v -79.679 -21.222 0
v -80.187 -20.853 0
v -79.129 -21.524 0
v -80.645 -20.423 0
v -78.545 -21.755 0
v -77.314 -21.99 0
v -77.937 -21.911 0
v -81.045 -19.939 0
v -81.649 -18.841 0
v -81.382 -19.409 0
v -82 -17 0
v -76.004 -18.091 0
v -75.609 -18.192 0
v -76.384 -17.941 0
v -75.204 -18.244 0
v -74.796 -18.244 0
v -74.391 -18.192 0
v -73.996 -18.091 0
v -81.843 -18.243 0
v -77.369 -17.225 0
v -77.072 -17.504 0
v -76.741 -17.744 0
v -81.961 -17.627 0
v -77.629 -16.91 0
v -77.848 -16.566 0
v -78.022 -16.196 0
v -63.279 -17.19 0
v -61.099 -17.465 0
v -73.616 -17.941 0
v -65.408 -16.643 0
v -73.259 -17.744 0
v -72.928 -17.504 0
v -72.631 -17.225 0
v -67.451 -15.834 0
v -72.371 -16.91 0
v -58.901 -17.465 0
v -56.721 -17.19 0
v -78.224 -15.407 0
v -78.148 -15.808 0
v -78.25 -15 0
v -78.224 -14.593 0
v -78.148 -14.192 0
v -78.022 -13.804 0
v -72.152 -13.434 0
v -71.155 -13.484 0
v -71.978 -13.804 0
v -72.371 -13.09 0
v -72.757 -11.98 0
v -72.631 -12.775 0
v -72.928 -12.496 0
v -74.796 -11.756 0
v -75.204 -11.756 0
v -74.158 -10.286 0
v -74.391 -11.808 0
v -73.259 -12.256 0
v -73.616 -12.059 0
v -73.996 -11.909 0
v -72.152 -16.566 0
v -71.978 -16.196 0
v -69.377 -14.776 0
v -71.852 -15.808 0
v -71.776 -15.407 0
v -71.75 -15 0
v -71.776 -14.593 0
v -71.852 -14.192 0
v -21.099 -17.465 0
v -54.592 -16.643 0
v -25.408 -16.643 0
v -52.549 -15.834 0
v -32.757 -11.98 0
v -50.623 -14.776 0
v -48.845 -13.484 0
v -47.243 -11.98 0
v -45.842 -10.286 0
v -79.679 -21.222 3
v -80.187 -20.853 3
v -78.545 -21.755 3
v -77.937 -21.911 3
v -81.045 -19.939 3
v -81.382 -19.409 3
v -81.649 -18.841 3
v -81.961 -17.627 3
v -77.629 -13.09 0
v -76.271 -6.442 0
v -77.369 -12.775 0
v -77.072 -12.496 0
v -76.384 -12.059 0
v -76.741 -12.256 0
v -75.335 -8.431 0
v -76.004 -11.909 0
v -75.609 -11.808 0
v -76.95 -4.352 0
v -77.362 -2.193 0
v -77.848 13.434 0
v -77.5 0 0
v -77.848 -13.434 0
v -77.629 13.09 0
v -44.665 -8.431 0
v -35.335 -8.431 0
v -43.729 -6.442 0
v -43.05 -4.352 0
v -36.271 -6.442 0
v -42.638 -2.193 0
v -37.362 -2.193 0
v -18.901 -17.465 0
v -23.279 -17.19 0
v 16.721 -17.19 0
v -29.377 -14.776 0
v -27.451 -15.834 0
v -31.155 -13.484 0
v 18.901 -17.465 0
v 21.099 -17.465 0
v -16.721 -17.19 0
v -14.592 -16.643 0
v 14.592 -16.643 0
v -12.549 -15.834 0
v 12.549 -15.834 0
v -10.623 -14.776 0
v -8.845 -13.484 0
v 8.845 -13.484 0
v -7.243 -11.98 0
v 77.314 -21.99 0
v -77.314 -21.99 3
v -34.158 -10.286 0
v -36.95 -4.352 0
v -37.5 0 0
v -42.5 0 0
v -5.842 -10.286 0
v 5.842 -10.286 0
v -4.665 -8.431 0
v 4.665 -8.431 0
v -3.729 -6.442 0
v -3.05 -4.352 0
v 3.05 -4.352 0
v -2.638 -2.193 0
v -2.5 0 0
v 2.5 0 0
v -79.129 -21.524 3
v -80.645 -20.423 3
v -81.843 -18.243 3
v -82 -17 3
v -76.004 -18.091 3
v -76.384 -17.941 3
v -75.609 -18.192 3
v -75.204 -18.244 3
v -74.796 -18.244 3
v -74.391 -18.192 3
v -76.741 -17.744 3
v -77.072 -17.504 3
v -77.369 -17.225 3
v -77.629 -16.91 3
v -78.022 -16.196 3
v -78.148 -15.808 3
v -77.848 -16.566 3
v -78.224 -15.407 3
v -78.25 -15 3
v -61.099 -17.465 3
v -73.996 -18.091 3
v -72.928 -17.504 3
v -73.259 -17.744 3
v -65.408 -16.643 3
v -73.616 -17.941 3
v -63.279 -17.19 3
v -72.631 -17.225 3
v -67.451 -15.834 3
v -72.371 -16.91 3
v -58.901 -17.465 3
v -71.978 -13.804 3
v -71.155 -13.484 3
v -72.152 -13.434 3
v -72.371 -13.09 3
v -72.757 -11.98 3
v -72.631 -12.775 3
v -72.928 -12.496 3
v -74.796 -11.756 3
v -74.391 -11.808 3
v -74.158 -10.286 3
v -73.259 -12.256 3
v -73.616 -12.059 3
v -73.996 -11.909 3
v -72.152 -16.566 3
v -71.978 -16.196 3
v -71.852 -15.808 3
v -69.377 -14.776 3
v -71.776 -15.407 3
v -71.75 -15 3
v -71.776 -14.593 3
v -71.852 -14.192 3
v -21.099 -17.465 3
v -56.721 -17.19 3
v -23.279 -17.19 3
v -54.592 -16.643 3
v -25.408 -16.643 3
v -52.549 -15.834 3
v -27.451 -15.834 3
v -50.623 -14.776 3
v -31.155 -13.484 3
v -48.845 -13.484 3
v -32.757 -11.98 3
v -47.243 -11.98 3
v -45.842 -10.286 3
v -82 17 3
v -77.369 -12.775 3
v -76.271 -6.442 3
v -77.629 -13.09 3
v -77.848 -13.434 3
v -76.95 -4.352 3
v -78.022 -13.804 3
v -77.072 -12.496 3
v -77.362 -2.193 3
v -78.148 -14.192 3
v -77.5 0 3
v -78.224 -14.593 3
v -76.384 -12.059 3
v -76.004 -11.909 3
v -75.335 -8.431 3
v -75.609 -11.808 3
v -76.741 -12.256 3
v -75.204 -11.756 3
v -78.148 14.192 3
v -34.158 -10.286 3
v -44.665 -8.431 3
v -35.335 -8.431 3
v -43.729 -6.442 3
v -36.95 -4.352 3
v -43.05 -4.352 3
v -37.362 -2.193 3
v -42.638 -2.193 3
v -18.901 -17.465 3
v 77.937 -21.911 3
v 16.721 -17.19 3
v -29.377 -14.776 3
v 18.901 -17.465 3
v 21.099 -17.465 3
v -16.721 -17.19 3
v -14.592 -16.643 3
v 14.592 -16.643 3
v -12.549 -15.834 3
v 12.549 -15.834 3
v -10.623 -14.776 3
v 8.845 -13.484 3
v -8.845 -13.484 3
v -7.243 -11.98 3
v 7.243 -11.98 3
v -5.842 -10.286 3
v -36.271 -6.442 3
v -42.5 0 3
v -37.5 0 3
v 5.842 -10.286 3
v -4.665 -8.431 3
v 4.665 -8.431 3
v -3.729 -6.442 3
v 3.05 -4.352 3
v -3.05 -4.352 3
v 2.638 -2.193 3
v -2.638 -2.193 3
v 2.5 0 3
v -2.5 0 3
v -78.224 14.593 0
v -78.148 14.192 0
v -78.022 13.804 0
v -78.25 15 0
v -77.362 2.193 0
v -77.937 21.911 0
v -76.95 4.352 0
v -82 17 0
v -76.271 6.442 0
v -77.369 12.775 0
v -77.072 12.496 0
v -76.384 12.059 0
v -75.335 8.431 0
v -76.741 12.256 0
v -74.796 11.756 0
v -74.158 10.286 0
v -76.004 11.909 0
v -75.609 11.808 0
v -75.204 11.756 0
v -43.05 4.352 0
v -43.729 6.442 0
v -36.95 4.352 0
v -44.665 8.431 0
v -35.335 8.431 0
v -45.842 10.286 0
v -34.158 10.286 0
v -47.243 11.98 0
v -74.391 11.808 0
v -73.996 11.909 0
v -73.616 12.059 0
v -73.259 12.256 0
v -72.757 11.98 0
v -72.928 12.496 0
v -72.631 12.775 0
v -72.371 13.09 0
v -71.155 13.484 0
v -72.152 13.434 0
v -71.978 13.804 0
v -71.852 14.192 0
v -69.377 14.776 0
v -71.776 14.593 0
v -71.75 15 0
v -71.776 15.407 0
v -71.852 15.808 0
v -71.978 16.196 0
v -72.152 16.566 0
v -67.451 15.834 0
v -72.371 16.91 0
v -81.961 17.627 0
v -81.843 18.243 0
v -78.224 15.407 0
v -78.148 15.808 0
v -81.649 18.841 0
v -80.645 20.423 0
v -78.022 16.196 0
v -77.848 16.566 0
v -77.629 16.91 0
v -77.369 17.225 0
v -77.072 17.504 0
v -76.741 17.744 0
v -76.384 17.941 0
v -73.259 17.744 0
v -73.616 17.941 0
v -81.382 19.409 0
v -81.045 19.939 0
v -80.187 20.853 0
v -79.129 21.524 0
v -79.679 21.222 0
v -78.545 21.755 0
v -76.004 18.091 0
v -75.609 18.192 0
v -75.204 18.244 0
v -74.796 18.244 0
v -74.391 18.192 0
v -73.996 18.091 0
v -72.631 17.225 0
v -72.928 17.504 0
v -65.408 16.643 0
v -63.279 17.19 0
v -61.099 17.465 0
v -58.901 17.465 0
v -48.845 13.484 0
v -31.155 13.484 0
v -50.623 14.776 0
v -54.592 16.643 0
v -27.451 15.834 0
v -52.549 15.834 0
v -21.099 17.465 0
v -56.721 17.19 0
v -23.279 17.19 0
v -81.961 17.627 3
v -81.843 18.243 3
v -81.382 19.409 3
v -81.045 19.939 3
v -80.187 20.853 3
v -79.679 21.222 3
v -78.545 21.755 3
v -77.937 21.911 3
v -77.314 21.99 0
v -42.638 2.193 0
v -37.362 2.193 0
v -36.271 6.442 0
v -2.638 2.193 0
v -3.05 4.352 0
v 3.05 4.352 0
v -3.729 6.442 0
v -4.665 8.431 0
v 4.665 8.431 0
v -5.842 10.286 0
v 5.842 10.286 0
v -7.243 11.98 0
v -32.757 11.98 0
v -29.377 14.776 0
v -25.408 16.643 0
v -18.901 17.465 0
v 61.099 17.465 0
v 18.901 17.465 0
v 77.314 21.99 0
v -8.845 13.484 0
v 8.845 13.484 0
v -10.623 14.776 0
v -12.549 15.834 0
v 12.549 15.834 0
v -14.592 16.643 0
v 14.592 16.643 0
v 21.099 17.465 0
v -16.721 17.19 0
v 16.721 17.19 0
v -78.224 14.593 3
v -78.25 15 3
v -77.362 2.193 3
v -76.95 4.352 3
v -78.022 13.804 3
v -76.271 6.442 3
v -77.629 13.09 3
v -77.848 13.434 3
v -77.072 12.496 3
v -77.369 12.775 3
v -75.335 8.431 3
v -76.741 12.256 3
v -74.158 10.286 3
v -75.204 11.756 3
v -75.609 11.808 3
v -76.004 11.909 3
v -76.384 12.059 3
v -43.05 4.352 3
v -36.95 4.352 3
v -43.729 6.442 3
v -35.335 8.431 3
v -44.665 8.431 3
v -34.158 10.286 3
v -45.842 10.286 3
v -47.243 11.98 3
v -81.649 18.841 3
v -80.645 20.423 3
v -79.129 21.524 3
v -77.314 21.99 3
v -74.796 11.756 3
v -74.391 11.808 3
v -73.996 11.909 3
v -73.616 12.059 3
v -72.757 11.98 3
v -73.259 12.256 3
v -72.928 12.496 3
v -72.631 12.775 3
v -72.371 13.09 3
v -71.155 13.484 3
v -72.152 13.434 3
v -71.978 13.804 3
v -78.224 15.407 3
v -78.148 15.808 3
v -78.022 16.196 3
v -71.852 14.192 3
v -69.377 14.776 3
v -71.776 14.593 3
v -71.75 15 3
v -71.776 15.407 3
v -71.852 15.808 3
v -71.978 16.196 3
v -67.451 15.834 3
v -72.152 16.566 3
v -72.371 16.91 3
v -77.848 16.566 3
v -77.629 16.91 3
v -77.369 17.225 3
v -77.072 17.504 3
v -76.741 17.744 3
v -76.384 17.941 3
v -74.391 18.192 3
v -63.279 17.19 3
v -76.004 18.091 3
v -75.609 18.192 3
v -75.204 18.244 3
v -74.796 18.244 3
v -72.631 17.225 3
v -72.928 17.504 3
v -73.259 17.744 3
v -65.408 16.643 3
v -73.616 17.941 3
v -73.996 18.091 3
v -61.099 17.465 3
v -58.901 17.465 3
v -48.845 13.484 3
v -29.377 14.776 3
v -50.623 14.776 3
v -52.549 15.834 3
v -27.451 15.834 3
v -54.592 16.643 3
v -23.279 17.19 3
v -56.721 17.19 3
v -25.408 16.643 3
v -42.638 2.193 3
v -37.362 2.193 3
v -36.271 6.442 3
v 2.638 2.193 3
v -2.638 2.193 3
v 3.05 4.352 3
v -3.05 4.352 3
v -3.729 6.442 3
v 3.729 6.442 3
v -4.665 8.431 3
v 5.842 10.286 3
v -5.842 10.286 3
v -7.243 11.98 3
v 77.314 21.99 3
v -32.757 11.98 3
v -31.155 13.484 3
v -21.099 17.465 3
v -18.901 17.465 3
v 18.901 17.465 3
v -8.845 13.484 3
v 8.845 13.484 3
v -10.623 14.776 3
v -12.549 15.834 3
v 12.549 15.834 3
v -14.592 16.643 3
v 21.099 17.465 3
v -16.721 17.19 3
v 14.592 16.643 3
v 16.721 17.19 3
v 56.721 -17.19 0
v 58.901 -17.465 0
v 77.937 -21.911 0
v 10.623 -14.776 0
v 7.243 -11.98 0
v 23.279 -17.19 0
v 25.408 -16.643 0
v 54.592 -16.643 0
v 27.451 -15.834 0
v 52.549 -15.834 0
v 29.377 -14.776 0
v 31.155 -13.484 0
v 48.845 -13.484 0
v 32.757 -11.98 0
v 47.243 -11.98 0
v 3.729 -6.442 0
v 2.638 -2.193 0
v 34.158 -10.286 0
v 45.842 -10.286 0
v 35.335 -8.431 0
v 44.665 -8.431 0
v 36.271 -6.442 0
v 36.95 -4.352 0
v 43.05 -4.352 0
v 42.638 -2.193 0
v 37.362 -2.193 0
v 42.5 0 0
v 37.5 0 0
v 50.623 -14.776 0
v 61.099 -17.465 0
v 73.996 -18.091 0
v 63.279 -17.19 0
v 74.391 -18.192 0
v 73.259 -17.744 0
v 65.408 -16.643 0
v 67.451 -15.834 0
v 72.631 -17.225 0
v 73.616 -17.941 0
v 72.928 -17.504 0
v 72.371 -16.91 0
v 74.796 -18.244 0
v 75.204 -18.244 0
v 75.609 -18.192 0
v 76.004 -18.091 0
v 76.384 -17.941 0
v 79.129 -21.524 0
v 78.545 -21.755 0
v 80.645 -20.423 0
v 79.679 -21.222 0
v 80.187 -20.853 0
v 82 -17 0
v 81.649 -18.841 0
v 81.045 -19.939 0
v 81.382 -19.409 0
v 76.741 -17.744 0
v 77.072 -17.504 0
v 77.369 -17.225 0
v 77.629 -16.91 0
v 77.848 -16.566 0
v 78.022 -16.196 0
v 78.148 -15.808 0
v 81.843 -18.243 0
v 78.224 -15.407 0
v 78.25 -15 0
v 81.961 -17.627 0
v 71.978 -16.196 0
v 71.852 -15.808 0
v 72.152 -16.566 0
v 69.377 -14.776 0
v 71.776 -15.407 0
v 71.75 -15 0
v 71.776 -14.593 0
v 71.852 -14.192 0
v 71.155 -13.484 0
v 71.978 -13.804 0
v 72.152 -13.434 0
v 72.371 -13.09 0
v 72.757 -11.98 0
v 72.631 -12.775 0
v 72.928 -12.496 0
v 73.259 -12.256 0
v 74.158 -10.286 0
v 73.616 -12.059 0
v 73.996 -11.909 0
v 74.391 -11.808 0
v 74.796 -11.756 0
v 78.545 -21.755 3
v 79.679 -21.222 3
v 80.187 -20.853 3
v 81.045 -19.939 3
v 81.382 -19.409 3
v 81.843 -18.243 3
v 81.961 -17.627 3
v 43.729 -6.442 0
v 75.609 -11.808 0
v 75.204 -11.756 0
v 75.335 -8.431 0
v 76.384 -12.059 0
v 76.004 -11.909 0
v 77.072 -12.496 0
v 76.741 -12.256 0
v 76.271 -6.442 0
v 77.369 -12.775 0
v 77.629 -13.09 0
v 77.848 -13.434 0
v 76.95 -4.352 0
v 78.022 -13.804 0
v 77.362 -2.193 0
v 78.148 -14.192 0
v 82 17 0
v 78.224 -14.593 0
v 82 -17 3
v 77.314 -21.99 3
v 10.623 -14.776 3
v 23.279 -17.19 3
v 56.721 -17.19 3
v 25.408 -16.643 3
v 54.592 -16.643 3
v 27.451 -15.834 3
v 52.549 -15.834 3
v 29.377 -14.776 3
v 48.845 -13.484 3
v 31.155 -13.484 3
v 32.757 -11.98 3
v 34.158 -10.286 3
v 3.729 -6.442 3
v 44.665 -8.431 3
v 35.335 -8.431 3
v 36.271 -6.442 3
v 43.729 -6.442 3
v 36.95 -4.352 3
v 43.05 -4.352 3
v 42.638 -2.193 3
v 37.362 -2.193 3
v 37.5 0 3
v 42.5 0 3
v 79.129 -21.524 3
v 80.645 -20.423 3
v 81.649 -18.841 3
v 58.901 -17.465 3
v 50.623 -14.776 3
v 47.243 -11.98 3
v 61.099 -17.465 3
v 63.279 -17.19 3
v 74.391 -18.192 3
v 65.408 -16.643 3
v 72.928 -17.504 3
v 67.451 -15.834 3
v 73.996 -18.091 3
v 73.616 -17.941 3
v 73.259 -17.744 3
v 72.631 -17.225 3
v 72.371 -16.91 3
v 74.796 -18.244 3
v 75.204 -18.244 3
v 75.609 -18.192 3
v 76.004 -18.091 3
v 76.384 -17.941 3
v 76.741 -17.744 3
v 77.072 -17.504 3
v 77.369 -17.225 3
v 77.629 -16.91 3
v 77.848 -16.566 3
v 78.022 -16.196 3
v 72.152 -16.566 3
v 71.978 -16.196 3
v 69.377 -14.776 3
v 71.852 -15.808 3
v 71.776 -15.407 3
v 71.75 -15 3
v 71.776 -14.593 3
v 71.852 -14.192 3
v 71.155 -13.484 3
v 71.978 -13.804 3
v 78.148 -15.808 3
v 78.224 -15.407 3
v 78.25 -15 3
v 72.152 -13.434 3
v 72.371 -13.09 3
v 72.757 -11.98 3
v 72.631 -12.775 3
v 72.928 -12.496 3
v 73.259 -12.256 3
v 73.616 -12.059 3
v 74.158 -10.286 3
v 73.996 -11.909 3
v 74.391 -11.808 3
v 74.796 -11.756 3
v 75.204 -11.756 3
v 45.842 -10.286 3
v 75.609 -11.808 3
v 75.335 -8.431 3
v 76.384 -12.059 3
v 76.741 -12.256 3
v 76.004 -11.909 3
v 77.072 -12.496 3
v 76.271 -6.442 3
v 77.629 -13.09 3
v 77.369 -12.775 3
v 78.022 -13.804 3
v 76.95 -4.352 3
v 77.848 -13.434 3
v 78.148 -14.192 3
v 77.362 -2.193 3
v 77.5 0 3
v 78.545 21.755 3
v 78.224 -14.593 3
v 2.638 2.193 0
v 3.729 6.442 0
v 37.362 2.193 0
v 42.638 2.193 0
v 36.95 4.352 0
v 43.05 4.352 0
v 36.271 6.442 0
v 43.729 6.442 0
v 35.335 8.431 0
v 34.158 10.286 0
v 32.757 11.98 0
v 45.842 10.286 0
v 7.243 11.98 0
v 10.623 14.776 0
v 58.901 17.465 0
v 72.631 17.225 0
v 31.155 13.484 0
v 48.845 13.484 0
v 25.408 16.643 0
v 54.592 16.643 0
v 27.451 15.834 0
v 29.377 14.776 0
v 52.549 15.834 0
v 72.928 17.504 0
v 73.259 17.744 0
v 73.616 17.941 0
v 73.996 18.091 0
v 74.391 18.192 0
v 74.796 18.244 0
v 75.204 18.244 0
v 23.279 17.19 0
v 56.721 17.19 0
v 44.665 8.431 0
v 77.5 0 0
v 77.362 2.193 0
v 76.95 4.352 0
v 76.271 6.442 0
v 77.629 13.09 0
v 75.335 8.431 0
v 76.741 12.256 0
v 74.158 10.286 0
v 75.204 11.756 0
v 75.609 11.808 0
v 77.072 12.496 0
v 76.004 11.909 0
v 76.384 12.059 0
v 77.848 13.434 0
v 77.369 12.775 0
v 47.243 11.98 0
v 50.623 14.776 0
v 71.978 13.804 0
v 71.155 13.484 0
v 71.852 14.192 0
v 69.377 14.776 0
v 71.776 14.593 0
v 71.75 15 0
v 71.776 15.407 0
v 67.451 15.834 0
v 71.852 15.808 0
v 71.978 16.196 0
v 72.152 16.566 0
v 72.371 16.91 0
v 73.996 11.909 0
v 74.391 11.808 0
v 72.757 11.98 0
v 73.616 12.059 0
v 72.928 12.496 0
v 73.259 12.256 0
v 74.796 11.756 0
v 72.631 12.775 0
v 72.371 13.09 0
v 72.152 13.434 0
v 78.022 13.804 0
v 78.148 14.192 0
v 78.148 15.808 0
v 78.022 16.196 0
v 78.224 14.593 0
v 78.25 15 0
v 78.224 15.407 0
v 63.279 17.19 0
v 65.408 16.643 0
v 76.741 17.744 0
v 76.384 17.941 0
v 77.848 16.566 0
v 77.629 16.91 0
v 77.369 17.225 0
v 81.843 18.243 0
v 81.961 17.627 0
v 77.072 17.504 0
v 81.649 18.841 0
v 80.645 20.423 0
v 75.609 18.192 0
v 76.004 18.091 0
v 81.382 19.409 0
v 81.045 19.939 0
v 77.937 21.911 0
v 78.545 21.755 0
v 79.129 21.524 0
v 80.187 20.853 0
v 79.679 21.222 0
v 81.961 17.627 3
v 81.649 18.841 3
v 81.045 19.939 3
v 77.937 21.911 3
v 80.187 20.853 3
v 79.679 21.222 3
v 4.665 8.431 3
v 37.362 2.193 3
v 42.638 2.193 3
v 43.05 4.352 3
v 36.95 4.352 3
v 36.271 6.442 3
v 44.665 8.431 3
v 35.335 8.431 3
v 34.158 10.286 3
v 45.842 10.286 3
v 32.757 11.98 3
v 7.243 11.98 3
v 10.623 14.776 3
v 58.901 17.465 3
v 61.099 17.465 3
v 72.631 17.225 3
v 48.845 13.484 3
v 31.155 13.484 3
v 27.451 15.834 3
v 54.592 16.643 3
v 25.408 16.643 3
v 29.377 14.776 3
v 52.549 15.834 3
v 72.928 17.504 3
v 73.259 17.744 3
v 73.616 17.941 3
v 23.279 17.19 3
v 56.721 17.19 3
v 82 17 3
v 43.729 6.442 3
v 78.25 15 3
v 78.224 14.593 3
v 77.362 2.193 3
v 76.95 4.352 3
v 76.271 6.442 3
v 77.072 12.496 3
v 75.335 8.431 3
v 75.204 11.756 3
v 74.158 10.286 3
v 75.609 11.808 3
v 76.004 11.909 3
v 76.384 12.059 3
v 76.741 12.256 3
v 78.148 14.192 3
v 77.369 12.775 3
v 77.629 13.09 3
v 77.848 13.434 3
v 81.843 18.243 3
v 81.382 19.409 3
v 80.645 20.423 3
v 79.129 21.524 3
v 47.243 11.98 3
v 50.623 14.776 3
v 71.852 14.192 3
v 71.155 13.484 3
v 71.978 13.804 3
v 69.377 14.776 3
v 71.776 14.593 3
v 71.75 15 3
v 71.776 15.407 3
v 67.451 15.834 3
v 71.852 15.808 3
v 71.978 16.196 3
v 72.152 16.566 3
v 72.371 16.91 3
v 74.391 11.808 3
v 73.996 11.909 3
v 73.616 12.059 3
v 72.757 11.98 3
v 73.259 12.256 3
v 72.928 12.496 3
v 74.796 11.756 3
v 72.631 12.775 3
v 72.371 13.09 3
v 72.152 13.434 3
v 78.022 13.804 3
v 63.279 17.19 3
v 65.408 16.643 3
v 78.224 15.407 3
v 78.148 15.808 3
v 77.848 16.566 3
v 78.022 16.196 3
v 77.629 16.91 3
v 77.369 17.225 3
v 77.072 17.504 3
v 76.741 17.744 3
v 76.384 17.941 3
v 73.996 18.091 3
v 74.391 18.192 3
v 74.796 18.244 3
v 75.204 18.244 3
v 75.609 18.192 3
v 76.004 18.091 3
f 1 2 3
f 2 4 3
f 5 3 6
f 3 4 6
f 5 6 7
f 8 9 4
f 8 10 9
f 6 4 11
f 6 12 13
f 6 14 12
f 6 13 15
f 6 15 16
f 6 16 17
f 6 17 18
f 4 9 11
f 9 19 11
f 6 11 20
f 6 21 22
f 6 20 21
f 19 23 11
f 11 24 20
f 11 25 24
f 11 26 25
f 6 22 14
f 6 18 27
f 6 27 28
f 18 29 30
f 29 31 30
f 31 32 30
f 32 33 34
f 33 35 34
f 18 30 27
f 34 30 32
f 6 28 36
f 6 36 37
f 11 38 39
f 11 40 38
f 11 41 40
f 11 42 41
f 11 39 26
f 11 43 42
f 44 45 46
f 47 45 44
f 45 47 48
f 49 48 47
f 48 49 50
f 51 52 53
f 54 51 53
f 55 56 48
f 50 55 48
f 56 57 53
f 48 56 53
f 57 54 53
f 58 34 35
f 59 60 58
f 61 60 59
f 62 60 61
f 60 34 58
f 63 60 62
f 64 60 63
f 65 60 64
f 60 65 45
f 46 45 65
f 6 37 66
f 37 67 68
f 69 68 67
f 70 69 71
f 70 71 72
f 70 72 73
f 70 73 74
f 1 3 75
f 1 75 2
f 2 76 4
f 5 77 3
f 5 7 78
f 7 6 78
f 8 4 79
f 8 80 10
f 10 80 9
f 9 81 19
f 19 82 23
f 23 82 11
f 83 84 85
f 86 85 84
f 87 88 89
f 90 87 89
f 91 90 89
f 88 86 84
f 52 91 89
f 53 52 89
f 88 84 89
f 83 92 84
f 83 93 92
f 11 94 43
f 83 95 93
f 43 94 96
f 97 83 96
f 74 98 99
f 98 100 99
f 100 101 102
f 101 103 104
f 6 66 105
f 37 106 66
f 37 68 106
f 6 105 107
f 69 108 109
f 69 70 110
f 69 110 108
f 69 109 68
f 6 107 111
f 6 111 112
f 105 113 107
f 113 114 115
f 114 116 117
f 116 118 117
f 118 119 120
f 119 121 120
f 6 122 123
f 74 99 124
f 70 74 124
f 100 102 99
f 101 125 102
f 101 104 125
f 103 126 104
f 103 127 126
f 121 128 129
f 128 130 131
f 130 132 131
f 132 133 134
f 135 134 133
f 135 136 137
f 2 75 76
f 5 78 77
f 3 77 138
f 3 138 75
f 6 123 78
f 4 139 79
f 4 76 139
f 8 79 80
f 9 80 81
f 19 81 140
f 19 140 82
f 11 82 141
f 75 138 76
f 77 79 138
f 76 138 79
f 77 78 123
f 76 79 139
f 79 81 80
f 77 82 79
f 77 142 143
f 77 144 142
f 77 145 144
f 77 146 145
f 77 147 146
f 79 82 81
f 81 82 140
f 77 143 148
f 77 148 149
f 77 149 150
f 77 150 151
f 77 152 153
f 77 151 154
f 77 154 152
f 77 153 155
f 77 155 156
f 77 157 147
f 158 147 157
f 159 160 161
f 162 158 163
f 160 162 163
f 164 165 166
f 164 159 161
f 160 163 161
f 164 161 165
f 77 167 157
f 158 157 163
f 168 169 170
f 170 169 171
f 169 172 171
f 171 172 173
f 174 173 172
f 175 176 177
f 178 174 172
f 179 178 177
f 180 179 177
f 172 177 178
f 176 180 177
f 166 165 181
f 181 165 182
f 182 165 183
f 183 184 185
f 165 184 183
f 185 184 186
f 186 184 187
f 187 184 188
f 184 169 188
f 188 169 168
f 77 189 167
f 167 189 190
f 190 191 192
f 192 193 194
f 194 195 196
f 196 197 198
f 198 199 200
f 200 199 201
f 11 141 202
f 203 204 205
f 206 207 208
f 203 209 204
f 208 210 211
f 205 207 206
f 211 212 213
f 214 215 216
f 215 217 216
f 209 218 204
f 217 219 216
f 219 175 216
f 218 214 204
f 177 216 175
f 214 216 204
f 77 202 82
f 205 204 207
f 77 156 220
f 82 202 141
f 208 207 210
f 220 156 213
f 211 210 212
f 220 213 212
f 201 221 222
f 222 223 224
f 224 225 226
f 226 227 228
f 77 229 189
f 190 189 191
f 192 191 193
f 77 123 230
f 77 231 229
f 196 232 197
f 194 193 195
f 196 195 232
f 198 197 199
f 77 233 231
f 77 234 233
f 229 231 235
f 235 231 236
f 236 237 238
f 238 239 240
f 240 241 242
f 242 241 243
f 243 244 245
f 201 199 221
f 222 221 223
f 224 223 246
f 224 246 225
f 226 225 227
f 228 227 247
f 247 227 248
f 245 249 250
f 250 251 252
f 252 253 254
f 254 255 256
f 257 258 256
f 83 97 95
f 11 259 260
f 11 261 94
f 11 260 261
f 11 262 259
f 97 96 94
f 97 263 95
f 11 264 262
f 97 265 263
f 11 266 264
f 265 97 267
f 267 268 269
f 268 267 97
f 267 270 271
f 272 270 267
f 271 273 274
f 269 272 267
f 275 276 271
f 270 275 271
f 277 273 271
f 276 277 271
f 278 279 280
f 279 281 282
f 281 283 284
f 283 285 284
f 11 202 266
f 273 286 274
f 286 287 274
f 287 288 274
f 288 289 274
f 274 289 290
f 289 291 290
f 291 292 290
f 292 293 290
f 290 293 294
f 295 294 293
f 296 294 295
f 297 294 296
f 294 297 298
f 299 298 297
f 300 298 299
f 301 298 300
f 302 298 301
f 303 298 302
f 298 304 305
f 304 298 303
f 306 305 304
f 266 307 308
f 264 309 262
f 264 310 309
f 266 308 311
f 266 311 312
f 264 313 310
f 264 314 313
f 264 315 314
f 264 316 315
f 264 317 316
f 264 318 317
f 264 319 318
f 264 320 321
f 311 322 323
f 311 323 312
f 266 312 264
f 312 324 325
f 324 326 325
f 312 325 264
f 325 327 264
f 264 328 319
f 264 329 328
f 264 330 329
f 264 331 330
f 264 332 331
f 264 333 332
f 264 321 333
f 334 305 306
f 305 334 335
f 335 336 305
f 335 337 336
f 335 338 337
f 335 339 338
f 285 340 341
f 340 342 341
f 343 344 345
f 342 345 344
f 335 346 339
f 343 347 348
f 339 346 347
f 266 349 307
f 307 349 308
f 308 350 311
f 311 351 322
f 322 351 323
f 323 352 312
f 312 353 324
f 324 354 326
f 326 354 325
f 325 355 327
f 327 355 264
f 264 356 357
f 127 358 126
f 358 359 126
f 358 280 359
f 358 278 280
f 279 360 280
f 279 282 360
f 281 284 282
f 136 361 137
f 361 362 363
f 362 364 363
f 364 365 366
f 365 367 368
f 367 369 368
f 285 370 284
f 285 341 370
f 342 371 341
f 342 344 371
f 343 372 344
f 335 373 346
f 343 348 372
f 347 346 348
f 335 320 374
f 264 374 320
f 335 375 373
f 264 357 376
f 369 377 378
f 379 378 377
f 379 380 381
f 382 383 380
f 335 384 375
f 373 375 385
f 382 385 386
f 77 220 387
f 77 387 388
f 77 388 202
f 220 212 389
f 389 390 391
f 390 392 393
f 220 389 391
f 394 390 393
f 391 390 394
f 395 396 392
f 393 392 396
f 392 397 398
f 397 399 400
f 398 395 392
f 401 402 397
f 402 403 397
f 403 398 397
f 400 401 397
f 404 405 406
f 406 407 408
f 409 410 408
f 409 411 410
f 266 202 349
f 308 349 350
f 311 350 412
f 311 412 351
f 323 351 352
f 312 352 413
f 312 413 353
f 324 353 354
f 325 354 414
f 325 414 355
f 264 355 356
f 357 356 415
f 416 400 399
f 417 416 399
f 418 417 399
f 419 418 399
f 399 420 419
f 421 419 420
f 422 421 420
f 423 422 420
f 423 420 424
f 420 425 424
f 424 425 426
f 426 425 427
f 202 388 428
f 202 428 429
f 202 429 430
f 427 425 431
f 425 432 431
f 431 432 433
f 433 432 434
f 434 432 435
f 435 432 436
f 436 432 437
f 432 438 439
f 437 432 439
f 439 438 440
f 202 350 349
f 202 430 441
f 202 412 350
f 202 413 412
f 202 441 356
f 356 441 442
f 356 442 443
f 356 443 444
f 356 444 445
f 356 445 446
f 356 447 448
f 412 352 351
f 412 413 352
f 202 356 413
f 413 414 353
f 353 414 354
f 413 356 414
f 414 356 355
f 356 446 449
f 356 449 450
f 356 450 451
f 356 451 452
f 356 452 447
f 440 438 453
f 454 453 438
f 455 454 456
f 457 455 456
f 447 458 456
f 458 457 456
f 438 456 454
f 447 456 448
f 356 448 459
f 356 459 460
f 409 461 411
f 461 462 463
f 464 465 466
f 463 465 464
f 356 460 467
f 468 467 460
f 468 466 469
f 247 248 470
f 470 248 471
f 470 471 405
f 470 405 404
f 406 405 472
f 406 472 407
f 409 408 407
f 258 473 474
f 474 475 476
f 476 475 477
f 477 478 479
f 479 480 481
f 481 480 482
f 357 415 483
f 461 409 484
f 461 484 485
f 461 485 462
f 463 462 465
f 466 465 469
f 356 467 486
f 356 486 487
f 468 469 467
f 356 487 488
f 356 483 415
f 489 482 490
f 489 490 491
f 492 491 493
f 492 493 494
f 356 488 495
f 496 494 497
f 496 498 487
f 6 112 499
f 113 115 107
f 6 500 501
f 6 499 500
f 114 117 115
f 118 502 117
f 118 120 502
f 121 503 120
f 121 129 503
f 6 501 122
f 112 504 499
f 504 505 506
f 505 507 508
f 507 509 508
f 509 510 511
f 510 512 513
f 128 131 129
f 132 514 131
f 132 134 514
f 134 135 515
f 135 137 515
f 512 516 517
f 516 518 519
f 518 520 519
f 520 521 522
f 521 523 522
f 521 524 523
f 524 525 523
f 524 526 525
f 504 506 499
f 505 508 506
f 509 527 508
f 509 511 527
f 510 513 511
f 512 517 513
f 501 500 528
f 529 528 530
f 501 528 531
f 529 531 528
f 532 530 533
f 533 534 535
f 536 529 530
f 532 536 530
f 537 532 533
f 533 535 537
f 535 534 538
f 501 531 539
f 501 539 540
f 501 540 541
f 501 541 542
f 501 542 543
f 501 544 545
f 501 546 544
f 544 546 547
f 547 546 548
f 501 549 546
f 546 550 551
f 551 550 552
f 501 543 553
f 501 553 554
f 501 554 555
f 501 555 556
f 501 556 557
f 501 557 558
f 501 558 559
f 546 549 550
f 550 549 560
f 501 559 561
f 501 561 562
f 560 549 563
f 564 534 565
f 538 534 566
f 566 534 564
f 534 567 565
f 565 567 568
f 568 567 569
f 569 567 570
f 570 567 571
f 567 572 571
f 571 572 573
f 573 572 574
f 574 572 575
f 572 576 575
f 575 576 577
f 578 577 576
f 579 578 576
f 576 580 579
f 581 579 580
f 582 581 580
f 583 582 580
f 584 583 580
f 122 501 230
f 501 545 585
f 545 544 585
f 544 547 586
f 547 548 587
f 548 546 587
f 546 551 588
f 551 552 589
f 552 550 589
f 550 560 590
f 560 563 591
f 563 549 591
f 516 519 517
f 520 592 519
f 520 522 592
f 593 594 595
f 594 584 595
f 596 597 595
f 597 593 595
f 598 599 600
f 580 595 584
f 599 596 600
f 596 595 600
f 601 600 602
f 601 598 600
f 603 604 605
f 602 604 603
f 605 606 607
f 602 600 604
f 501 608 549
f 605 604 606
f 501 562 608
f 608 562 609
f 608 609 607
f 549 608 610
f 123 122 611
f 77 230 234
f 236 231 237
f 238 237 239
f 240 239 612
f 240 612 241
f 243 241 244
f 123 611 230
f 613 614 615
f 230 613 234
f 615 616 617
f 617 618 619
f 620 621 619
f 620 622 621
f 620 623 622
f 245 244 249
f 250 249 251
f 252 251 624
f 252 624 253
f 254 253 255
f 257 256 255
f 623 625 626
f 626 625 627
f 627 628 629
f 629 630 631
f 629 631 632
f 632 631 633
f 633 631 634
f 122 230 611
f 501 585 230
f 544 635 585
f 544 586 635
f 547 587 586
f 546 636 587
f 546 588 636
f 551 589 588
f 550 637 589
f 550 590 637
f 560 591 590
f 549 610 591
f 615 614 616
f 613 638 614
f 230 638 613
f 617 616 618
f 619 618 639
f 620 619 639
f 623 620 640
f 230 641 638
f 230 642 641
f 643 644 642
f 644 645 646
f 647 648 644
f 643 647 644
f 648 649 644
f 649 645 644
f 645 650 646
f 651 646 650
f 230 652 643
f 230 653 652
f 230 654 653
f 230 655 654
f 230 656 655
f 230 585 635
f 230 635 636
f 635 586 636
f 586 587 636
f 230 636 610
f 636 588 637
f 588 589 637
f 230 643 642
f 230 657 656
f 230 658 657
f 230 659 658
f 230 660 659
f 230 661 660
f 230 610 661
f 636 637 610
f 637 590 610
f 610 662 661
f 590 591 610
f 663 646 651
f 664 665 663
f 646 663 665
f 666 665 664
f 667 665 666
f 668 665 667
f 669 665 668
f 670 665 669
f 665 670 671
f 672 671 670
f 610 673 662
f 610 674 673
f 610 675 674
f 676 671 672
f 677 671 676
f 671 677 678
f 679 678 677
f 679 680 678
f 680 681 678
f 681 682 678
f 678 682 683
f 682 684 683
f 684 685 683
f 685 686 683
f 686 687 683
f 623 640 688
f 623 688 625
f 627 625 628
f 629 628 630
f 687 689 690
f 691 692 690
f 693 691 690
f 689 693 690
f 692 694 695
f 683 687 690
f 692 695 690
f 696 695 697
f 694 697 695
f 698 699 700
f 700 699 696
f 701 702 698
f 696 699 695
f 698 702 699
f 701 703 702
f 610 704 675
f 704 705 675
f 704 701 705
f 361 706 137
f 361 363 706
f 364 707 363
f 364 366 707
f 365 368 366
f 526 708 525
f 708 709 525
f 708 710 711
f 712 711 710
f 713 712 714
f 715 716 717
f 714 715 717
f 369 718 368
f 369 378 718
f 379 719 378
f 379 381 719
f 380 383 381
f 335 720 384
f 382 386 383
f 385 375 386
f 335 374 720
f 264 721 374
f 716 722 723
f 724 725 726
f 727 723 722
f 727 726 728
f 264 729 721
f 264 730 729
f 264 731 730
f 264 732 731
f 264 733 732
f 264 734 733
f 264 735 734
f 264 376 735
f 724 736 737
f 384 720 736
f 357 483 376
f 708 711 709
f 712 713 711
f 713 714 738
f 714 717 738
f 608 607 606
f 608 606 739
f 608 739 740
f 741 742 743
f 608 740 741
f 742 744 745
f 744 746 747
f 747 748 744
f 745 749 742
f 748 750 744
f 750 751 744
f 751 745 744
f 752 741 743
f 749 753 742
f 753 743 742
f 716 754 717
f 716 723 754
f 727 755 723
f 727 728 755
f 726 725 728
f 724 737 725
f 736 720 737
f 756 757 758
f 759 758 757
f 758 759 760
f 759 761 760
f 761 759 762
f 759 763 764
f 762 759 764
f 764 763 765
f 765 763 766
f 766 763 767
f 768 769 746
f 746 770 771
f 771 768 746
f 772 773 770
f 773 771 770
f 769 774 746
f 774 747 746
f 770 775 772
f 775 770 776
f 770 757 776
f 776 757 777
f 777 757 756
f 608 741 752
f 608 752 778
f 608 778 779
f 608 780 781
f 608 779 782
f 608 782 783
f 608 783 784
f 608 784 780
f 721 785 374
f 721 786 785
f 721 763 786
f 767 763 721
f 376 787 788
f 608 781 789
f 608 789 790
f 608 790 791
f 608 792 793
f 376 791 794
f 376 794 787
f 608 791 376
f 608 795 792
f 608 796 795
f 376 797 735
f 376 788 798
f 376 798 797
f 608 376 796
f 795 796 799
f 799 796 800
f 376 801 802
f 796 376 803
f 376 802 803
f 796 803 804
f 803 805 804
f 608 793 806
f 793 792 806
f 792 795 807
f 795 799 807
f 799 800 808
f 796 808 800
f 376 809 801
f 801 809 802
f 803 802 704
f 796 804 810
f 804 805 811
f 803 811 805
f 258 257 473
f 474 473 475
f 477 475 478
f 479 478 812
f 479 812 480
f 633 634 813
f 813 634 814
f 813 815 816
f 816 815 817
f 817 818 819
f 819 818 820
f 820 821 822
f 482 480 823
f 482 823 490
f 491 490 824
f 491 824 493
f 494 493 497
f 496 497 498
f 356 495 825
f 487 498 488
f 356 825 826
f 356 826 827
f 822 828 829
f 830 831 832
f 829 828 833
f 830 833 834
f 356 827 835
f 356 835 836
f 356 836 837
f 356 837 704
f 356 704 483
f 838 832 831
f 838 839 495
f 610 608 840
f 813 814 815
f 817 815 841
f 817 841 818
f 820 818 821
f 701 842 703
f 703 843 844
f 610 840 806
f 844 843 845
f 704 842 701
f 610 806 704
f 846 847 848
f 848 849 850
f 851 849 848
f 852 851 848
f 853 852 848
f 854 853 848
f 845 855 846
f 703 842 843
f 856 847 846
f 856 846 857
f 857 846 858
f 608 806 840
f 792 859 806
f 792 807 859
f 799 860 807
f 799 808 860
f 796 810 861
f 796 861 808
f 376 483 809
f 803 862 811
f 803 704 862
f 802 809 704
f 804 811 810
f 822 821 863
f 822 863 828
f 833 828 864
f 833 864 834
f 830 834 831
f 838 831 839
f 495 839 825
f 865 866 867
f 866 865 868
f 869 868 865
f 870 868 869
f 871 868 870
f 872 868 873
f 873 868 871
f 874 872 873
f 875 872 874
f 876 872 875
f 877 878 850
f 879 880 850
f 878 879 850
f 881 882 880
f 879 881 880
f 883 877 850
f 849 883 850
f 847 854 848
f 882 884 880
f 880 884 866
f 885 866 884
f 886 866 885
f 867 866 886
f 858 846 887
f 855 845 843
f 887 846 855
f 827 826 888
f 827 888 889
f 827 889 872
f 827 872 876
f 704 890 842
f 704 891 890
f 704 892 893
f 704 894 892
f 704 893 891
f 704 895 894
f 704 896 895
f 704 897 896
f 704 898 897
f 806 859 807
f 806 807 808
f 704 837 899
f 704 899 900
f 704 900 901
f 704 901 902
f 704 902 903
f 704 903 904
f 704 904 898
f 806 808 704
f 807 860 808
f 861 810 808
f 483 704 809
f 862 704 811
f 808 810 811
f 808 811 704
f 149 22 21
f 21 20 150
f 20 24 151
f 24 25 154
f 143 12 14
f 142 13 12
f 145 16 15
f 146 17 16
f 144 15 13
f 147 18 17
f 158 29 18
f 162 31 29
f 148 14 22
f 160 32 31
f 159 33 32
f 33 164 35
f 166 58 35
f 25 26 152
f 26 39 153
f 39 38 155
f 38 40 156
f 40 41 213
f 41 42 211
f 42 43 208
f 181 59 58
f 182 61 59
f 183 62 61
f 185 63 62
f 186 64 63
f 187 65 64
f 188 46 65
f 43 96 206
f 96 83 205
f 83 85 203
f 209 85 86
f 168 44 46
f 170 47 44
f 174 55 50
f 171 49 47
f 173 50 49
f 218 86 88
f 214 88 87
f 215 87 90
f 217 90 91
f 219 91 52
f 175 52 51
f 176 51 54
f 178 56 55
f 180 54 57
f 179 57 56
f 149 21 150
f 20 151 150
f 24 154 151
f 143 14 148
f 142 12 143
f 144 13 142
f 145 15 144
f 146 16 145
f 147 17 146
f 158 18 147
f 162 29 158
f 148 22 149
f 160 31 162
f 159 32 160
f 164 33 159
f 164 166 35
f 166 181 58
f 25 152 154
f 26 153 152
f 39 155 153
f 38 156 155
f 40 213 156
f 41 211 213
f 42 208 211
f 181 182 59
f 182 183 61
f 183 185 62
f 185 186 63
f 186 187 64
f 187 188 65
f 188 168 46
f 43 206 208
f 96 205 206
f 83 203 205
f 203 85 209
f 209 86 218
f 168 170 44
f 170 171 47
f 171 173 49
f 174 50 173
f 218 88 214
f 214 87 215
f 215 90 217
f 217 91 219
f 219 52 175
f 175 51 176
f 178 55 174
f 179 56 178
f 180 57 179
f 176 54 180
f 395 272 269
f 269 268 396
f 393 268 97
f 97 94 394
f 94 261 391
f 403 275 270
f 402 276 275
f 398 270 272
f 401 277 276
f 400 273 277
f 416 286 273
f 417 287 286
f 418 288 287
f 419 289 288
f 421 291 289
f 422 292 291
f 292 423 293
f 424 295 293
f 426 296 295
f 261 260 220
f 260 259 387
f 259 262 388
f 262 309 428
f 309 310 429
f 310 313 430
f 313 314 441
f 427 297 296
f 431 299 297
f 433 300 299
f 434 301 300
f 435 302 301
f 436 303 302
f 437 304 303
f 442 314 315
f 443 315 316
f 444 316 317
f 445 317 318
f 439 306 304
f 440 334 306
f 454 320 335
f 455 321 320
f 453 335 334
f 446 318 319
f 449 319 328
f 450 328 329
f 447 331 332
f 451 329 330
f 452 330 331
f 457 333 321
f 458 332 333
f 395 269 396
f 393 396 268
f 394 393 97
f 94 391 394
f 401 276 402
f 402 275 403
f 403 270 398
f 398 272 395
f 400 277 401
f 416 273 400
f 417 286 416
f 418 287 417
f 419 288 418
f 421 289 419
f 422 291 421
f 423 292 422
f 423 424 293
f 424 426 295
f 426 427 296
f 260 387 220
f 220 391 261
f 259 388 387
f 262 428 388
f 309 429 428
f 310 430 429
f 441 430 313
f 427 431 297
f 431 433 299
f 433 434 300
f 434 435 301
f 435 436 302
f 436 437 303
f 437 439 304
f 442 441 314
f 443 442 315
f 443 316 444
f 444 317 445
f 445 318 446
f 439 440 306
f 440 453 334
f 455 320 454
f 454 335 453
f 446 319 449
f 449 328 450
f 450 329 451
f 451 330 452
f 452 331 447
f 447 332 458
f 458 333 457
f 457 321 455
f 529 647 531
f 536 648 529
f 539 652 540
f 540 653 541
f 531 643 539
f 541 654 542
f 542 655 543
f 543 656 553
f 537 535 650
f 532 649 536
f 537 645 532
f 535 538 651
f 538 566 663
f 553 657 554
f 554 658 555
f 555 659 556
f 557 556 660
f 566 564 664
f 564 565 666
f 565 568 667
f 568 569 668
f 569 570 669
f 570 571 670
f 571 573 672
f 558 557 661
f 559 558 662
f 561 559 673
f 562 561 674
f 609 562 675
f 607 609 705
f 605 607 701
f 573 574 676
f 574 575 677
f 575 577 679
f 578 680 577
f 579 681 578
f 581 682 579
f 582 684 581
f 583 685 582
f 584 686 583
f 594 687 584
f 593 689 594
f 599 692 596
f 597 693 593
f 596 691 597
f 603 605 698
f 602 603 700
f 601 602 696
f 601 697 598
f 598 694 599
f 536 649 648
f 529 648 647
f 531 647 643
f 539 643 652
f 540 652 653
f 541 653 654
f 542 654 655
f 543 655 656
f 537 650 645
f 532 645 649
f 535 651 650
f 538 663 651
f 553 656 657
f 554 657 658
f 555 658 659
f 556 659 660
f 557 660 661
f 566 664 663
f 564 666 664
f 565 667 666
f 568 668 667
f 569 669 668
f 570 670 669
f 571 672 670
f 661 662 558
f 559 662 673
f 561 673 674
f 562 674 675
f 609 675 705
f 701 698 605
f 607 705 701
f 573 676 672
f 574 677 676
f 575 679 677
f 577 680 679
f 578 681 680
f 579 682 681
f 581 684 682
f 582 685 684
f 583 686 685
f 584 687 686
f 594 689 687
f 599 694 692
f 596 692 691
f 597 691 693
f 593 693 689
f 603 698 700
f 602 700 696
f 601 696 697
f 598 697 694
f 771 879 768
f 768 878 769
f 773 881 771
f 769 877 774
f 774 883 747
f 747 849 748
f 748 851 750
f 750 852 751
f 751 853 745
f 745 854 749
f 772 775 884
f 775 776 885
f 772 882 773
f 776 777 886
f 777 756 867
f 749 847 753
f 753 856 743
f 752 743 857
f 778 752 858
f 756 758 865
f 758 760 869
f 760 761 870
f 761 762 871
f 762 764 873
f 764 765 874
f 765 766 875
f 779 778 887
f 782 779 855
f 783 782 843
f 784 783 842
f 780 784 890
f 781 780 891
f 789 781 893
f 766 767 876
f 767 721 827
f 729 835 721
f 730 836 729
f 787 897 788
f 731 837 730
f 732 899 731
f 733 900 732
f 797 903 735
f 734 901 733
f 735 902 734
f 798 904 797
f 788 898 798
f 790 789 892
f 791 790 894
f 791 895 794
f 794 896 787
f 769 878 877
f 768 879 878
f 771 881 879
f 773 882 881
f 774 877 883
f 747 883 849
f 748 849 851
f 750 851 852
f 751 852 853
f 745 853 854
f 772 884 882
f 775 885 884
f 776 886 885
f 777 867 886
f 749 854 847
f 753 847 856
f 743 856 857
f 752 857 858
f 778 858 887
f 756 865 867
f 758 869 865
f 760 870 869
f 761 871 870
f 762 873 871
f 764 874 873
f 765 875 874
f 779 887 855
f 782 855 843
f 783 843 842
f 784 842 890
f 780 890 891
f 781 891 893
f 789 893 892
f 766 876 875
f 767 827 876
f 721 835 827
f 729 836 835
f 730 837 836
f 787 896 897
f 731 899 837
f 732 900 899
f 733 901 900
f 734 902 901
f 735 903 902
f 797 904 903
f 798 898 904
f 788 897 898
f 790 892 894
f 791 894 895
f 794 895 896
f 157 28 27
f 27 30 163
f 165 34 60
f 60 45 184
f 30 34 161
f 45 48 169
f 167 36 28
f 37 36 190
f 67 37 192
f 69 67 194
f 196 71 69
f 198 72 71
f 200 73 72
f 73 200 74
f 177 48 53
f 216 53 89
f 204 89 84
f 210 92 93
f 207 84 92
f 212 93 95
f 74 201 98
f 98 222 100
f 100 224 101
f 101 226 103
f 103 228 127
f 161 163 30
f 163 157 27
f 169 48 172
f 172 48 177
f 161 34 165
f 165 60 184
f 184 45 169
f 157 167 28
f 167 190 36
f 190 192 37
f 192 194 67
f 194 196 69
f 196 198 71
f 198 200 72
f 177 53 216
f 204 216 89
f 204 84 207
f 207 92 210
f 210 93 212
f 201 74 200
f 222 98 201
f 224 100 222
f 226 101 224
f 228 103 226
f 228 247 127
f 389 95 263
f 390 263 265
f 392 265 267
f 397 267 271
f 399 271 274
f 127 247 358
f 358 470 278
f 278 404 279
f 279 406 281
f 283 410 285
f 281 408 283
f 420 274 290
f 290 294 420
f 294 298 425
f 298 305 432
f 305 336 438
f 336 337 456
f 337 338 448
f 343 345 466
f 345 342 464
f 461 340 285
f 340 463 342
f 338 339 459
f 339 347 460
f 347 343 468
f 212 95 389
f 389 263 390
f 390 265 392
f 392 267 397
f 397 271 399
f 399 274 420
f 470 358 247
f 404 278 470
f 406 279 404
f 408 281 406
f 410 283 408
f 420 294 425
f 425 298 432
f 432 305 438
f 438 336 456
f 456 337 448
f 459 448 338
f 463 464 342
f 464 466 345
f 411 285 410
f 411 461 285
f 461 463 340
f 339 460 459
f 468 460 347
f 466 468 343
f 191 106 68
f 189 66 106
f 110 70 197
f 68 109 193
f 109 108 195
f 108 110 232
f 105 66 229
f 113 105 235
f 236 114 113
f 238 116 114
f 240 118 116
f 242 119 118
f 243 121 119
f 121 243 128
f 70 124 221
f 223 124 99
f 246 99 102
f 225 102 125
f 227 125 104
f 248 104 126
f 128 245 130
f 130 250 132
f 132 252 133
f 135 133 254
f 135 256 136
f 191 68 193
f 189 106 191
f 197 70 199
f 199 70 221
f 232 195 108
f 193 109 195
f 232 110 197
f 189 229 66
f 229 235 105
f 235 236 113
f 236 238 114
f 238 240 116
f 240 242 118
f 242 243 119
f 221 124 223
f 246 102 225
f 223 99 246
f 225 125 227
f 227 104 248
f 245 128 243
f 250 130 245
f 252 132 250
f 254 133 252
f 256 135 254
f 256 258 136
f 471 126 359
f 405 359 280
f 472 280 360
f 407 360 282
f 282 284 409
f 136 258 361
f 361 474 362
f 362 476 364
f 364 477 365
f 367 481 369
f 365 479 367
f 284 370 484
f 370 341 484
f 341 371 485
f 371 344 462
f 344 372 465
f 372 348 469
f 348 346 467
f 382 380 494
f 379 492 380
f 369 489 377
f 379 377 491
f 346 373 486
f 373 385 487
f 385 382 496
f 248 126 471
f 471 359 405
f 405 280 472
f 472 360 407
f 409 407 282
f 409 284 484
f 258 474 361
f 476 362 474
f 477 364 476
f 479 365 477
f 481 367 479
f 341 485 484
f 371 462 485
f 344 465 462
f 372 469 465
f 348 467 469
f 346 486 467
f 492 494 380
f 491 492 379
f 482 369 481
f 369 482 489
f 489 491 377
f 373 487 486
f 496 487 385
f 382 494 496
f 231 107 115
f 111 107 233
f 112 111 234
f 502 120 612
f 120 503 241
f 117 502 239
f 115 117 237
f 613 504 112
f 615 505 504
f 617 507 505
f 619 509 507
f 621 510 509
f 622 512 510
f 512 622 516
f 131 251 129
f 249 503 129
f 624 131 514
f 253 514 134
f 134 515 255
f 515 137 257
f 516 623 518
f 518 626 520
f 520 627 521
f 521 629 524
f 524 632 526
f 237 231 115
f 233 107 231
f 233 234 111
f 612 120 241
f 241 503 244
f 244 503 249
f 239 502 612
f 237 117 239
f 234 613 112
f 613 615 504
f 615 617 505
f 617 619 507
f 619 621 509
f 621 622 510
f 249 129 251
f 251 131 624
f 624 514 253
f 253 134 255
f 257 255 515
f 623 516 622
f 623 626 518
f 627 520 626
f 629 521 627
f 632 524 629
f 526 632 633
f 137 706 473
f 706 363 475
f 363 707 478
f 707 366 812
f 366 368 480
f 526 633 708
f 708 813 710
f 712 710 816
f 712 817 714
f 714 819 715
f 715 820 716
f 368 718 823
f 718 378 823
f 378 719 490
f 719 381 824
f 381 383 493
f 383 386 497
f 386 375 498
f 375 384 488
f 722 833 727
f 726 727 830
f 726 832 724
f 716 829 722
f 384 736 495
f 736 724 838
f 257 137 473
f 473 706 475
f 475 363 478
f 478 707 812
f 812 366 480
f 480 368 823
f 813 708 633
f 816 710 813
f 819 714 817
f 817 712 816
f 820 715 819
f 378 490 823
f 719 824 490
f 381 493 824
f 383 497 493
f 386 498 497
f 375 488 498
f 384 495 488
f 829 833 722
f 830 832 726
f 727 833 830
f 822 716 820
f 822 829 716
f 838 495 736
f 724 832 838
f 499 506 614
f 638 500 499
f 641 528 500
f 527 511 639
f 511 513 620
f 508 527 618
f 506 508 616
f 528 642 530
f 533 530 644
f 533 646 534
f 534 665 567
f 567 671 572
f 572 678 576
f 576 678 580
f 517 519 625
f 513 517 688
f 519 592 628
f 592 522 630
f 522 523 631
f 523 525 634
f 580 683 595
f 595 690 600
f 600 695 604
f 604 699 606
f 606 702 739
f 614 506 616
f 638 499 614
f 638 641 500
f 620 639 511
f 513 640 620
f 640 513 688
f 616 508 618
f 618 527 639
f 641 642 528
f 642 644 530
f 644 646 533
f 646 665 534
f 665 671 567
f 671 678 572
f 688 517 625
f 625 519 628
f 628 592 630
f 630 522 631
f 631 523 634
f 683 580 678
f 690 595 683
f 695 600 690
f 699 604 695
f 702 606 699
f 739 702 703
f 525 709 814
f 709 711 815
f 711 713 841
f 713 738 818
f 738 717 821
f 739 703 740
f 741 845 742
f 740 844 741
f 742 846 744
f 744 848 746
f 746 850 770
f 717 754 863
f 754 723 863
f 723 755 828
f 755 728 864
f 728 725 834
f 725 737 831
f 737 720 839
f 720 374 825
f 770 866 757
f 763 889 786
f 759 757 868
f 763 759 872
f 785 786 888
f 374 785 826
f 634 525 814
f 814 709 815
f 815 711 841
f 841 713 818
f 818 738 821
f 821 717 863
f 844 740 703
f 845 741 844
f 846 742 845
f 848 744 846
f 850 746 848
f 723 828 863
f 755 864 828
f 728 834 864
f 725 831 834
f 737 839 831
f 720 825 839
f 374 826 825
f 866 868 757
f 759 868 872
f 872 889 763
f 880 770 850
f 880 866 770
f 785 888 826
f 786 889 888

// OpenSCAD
$fn = 50;

difference() {
	union() {
		hull() {
			translate(v = [-77.0, 17.0, 0]) {
				cylinder(h = 3, r = 5);
			}
			translate(v = [77.0, 17.0, 0]) {
				cylinder(h = 3, r = 5);
			}
			translate(v = [-77.0, -17.0, 0]) {
				cylinder(h = 3, r = 5);
			}
			translate(v = [77.0, -17.0, 0]) {
				cylinder(h = 3, r = 5);
			}
		}
	}
	union() {
		translate(v = [-75.0, -15.0, -100.0]) {
			cylinder(h = 200, r = 3.25);
		}
		translate(v = [-75.0, 15.0, -100.0]) {
			cylinder(h = 200, r = 3.25);
		}
		translate(v = [75.0, -15.0, -100.0]) {
			cylinder(h = 200, r = 3.25);
		}
		translate(v = [75.0, 15.0, -100.0]) {
			cylinder(h = 200, r = 3.25);
		}
		translate(v = [-75.0, -15.0, -100.0]) {
			cylinder(h = 200, r = 1.8);
		}
		translate(v = [-75.0, 15.0, -100.0]) {
			cylinder(h = 200, r = 1.8);
		}
		translate(v = [75.0, -15.0, -100.0]) {
			cylinder(h = 200, r = 1.8);
		}
		translate(v = [75.0, 15.0, -100.0]) {
			cylinder(h = 200, r = 1.8);
		}
		translate(v = [-60.0, 0, 0.0]) {
			cylinder(h = 3, r = 17.5);
		}
		translate(v = [-20.0, 0, 0.0]) {
			cylinder(h = 3, r = 17.5);
		}
		translate(v = [20.0, 0, 0.0]) {
			cylinder(h = 3, r = 17.5);
		}
		translate(v = [60.0, 0, 0.0]) {
			cylinder(h = 3, r = 17.5);
		}
	}
}
